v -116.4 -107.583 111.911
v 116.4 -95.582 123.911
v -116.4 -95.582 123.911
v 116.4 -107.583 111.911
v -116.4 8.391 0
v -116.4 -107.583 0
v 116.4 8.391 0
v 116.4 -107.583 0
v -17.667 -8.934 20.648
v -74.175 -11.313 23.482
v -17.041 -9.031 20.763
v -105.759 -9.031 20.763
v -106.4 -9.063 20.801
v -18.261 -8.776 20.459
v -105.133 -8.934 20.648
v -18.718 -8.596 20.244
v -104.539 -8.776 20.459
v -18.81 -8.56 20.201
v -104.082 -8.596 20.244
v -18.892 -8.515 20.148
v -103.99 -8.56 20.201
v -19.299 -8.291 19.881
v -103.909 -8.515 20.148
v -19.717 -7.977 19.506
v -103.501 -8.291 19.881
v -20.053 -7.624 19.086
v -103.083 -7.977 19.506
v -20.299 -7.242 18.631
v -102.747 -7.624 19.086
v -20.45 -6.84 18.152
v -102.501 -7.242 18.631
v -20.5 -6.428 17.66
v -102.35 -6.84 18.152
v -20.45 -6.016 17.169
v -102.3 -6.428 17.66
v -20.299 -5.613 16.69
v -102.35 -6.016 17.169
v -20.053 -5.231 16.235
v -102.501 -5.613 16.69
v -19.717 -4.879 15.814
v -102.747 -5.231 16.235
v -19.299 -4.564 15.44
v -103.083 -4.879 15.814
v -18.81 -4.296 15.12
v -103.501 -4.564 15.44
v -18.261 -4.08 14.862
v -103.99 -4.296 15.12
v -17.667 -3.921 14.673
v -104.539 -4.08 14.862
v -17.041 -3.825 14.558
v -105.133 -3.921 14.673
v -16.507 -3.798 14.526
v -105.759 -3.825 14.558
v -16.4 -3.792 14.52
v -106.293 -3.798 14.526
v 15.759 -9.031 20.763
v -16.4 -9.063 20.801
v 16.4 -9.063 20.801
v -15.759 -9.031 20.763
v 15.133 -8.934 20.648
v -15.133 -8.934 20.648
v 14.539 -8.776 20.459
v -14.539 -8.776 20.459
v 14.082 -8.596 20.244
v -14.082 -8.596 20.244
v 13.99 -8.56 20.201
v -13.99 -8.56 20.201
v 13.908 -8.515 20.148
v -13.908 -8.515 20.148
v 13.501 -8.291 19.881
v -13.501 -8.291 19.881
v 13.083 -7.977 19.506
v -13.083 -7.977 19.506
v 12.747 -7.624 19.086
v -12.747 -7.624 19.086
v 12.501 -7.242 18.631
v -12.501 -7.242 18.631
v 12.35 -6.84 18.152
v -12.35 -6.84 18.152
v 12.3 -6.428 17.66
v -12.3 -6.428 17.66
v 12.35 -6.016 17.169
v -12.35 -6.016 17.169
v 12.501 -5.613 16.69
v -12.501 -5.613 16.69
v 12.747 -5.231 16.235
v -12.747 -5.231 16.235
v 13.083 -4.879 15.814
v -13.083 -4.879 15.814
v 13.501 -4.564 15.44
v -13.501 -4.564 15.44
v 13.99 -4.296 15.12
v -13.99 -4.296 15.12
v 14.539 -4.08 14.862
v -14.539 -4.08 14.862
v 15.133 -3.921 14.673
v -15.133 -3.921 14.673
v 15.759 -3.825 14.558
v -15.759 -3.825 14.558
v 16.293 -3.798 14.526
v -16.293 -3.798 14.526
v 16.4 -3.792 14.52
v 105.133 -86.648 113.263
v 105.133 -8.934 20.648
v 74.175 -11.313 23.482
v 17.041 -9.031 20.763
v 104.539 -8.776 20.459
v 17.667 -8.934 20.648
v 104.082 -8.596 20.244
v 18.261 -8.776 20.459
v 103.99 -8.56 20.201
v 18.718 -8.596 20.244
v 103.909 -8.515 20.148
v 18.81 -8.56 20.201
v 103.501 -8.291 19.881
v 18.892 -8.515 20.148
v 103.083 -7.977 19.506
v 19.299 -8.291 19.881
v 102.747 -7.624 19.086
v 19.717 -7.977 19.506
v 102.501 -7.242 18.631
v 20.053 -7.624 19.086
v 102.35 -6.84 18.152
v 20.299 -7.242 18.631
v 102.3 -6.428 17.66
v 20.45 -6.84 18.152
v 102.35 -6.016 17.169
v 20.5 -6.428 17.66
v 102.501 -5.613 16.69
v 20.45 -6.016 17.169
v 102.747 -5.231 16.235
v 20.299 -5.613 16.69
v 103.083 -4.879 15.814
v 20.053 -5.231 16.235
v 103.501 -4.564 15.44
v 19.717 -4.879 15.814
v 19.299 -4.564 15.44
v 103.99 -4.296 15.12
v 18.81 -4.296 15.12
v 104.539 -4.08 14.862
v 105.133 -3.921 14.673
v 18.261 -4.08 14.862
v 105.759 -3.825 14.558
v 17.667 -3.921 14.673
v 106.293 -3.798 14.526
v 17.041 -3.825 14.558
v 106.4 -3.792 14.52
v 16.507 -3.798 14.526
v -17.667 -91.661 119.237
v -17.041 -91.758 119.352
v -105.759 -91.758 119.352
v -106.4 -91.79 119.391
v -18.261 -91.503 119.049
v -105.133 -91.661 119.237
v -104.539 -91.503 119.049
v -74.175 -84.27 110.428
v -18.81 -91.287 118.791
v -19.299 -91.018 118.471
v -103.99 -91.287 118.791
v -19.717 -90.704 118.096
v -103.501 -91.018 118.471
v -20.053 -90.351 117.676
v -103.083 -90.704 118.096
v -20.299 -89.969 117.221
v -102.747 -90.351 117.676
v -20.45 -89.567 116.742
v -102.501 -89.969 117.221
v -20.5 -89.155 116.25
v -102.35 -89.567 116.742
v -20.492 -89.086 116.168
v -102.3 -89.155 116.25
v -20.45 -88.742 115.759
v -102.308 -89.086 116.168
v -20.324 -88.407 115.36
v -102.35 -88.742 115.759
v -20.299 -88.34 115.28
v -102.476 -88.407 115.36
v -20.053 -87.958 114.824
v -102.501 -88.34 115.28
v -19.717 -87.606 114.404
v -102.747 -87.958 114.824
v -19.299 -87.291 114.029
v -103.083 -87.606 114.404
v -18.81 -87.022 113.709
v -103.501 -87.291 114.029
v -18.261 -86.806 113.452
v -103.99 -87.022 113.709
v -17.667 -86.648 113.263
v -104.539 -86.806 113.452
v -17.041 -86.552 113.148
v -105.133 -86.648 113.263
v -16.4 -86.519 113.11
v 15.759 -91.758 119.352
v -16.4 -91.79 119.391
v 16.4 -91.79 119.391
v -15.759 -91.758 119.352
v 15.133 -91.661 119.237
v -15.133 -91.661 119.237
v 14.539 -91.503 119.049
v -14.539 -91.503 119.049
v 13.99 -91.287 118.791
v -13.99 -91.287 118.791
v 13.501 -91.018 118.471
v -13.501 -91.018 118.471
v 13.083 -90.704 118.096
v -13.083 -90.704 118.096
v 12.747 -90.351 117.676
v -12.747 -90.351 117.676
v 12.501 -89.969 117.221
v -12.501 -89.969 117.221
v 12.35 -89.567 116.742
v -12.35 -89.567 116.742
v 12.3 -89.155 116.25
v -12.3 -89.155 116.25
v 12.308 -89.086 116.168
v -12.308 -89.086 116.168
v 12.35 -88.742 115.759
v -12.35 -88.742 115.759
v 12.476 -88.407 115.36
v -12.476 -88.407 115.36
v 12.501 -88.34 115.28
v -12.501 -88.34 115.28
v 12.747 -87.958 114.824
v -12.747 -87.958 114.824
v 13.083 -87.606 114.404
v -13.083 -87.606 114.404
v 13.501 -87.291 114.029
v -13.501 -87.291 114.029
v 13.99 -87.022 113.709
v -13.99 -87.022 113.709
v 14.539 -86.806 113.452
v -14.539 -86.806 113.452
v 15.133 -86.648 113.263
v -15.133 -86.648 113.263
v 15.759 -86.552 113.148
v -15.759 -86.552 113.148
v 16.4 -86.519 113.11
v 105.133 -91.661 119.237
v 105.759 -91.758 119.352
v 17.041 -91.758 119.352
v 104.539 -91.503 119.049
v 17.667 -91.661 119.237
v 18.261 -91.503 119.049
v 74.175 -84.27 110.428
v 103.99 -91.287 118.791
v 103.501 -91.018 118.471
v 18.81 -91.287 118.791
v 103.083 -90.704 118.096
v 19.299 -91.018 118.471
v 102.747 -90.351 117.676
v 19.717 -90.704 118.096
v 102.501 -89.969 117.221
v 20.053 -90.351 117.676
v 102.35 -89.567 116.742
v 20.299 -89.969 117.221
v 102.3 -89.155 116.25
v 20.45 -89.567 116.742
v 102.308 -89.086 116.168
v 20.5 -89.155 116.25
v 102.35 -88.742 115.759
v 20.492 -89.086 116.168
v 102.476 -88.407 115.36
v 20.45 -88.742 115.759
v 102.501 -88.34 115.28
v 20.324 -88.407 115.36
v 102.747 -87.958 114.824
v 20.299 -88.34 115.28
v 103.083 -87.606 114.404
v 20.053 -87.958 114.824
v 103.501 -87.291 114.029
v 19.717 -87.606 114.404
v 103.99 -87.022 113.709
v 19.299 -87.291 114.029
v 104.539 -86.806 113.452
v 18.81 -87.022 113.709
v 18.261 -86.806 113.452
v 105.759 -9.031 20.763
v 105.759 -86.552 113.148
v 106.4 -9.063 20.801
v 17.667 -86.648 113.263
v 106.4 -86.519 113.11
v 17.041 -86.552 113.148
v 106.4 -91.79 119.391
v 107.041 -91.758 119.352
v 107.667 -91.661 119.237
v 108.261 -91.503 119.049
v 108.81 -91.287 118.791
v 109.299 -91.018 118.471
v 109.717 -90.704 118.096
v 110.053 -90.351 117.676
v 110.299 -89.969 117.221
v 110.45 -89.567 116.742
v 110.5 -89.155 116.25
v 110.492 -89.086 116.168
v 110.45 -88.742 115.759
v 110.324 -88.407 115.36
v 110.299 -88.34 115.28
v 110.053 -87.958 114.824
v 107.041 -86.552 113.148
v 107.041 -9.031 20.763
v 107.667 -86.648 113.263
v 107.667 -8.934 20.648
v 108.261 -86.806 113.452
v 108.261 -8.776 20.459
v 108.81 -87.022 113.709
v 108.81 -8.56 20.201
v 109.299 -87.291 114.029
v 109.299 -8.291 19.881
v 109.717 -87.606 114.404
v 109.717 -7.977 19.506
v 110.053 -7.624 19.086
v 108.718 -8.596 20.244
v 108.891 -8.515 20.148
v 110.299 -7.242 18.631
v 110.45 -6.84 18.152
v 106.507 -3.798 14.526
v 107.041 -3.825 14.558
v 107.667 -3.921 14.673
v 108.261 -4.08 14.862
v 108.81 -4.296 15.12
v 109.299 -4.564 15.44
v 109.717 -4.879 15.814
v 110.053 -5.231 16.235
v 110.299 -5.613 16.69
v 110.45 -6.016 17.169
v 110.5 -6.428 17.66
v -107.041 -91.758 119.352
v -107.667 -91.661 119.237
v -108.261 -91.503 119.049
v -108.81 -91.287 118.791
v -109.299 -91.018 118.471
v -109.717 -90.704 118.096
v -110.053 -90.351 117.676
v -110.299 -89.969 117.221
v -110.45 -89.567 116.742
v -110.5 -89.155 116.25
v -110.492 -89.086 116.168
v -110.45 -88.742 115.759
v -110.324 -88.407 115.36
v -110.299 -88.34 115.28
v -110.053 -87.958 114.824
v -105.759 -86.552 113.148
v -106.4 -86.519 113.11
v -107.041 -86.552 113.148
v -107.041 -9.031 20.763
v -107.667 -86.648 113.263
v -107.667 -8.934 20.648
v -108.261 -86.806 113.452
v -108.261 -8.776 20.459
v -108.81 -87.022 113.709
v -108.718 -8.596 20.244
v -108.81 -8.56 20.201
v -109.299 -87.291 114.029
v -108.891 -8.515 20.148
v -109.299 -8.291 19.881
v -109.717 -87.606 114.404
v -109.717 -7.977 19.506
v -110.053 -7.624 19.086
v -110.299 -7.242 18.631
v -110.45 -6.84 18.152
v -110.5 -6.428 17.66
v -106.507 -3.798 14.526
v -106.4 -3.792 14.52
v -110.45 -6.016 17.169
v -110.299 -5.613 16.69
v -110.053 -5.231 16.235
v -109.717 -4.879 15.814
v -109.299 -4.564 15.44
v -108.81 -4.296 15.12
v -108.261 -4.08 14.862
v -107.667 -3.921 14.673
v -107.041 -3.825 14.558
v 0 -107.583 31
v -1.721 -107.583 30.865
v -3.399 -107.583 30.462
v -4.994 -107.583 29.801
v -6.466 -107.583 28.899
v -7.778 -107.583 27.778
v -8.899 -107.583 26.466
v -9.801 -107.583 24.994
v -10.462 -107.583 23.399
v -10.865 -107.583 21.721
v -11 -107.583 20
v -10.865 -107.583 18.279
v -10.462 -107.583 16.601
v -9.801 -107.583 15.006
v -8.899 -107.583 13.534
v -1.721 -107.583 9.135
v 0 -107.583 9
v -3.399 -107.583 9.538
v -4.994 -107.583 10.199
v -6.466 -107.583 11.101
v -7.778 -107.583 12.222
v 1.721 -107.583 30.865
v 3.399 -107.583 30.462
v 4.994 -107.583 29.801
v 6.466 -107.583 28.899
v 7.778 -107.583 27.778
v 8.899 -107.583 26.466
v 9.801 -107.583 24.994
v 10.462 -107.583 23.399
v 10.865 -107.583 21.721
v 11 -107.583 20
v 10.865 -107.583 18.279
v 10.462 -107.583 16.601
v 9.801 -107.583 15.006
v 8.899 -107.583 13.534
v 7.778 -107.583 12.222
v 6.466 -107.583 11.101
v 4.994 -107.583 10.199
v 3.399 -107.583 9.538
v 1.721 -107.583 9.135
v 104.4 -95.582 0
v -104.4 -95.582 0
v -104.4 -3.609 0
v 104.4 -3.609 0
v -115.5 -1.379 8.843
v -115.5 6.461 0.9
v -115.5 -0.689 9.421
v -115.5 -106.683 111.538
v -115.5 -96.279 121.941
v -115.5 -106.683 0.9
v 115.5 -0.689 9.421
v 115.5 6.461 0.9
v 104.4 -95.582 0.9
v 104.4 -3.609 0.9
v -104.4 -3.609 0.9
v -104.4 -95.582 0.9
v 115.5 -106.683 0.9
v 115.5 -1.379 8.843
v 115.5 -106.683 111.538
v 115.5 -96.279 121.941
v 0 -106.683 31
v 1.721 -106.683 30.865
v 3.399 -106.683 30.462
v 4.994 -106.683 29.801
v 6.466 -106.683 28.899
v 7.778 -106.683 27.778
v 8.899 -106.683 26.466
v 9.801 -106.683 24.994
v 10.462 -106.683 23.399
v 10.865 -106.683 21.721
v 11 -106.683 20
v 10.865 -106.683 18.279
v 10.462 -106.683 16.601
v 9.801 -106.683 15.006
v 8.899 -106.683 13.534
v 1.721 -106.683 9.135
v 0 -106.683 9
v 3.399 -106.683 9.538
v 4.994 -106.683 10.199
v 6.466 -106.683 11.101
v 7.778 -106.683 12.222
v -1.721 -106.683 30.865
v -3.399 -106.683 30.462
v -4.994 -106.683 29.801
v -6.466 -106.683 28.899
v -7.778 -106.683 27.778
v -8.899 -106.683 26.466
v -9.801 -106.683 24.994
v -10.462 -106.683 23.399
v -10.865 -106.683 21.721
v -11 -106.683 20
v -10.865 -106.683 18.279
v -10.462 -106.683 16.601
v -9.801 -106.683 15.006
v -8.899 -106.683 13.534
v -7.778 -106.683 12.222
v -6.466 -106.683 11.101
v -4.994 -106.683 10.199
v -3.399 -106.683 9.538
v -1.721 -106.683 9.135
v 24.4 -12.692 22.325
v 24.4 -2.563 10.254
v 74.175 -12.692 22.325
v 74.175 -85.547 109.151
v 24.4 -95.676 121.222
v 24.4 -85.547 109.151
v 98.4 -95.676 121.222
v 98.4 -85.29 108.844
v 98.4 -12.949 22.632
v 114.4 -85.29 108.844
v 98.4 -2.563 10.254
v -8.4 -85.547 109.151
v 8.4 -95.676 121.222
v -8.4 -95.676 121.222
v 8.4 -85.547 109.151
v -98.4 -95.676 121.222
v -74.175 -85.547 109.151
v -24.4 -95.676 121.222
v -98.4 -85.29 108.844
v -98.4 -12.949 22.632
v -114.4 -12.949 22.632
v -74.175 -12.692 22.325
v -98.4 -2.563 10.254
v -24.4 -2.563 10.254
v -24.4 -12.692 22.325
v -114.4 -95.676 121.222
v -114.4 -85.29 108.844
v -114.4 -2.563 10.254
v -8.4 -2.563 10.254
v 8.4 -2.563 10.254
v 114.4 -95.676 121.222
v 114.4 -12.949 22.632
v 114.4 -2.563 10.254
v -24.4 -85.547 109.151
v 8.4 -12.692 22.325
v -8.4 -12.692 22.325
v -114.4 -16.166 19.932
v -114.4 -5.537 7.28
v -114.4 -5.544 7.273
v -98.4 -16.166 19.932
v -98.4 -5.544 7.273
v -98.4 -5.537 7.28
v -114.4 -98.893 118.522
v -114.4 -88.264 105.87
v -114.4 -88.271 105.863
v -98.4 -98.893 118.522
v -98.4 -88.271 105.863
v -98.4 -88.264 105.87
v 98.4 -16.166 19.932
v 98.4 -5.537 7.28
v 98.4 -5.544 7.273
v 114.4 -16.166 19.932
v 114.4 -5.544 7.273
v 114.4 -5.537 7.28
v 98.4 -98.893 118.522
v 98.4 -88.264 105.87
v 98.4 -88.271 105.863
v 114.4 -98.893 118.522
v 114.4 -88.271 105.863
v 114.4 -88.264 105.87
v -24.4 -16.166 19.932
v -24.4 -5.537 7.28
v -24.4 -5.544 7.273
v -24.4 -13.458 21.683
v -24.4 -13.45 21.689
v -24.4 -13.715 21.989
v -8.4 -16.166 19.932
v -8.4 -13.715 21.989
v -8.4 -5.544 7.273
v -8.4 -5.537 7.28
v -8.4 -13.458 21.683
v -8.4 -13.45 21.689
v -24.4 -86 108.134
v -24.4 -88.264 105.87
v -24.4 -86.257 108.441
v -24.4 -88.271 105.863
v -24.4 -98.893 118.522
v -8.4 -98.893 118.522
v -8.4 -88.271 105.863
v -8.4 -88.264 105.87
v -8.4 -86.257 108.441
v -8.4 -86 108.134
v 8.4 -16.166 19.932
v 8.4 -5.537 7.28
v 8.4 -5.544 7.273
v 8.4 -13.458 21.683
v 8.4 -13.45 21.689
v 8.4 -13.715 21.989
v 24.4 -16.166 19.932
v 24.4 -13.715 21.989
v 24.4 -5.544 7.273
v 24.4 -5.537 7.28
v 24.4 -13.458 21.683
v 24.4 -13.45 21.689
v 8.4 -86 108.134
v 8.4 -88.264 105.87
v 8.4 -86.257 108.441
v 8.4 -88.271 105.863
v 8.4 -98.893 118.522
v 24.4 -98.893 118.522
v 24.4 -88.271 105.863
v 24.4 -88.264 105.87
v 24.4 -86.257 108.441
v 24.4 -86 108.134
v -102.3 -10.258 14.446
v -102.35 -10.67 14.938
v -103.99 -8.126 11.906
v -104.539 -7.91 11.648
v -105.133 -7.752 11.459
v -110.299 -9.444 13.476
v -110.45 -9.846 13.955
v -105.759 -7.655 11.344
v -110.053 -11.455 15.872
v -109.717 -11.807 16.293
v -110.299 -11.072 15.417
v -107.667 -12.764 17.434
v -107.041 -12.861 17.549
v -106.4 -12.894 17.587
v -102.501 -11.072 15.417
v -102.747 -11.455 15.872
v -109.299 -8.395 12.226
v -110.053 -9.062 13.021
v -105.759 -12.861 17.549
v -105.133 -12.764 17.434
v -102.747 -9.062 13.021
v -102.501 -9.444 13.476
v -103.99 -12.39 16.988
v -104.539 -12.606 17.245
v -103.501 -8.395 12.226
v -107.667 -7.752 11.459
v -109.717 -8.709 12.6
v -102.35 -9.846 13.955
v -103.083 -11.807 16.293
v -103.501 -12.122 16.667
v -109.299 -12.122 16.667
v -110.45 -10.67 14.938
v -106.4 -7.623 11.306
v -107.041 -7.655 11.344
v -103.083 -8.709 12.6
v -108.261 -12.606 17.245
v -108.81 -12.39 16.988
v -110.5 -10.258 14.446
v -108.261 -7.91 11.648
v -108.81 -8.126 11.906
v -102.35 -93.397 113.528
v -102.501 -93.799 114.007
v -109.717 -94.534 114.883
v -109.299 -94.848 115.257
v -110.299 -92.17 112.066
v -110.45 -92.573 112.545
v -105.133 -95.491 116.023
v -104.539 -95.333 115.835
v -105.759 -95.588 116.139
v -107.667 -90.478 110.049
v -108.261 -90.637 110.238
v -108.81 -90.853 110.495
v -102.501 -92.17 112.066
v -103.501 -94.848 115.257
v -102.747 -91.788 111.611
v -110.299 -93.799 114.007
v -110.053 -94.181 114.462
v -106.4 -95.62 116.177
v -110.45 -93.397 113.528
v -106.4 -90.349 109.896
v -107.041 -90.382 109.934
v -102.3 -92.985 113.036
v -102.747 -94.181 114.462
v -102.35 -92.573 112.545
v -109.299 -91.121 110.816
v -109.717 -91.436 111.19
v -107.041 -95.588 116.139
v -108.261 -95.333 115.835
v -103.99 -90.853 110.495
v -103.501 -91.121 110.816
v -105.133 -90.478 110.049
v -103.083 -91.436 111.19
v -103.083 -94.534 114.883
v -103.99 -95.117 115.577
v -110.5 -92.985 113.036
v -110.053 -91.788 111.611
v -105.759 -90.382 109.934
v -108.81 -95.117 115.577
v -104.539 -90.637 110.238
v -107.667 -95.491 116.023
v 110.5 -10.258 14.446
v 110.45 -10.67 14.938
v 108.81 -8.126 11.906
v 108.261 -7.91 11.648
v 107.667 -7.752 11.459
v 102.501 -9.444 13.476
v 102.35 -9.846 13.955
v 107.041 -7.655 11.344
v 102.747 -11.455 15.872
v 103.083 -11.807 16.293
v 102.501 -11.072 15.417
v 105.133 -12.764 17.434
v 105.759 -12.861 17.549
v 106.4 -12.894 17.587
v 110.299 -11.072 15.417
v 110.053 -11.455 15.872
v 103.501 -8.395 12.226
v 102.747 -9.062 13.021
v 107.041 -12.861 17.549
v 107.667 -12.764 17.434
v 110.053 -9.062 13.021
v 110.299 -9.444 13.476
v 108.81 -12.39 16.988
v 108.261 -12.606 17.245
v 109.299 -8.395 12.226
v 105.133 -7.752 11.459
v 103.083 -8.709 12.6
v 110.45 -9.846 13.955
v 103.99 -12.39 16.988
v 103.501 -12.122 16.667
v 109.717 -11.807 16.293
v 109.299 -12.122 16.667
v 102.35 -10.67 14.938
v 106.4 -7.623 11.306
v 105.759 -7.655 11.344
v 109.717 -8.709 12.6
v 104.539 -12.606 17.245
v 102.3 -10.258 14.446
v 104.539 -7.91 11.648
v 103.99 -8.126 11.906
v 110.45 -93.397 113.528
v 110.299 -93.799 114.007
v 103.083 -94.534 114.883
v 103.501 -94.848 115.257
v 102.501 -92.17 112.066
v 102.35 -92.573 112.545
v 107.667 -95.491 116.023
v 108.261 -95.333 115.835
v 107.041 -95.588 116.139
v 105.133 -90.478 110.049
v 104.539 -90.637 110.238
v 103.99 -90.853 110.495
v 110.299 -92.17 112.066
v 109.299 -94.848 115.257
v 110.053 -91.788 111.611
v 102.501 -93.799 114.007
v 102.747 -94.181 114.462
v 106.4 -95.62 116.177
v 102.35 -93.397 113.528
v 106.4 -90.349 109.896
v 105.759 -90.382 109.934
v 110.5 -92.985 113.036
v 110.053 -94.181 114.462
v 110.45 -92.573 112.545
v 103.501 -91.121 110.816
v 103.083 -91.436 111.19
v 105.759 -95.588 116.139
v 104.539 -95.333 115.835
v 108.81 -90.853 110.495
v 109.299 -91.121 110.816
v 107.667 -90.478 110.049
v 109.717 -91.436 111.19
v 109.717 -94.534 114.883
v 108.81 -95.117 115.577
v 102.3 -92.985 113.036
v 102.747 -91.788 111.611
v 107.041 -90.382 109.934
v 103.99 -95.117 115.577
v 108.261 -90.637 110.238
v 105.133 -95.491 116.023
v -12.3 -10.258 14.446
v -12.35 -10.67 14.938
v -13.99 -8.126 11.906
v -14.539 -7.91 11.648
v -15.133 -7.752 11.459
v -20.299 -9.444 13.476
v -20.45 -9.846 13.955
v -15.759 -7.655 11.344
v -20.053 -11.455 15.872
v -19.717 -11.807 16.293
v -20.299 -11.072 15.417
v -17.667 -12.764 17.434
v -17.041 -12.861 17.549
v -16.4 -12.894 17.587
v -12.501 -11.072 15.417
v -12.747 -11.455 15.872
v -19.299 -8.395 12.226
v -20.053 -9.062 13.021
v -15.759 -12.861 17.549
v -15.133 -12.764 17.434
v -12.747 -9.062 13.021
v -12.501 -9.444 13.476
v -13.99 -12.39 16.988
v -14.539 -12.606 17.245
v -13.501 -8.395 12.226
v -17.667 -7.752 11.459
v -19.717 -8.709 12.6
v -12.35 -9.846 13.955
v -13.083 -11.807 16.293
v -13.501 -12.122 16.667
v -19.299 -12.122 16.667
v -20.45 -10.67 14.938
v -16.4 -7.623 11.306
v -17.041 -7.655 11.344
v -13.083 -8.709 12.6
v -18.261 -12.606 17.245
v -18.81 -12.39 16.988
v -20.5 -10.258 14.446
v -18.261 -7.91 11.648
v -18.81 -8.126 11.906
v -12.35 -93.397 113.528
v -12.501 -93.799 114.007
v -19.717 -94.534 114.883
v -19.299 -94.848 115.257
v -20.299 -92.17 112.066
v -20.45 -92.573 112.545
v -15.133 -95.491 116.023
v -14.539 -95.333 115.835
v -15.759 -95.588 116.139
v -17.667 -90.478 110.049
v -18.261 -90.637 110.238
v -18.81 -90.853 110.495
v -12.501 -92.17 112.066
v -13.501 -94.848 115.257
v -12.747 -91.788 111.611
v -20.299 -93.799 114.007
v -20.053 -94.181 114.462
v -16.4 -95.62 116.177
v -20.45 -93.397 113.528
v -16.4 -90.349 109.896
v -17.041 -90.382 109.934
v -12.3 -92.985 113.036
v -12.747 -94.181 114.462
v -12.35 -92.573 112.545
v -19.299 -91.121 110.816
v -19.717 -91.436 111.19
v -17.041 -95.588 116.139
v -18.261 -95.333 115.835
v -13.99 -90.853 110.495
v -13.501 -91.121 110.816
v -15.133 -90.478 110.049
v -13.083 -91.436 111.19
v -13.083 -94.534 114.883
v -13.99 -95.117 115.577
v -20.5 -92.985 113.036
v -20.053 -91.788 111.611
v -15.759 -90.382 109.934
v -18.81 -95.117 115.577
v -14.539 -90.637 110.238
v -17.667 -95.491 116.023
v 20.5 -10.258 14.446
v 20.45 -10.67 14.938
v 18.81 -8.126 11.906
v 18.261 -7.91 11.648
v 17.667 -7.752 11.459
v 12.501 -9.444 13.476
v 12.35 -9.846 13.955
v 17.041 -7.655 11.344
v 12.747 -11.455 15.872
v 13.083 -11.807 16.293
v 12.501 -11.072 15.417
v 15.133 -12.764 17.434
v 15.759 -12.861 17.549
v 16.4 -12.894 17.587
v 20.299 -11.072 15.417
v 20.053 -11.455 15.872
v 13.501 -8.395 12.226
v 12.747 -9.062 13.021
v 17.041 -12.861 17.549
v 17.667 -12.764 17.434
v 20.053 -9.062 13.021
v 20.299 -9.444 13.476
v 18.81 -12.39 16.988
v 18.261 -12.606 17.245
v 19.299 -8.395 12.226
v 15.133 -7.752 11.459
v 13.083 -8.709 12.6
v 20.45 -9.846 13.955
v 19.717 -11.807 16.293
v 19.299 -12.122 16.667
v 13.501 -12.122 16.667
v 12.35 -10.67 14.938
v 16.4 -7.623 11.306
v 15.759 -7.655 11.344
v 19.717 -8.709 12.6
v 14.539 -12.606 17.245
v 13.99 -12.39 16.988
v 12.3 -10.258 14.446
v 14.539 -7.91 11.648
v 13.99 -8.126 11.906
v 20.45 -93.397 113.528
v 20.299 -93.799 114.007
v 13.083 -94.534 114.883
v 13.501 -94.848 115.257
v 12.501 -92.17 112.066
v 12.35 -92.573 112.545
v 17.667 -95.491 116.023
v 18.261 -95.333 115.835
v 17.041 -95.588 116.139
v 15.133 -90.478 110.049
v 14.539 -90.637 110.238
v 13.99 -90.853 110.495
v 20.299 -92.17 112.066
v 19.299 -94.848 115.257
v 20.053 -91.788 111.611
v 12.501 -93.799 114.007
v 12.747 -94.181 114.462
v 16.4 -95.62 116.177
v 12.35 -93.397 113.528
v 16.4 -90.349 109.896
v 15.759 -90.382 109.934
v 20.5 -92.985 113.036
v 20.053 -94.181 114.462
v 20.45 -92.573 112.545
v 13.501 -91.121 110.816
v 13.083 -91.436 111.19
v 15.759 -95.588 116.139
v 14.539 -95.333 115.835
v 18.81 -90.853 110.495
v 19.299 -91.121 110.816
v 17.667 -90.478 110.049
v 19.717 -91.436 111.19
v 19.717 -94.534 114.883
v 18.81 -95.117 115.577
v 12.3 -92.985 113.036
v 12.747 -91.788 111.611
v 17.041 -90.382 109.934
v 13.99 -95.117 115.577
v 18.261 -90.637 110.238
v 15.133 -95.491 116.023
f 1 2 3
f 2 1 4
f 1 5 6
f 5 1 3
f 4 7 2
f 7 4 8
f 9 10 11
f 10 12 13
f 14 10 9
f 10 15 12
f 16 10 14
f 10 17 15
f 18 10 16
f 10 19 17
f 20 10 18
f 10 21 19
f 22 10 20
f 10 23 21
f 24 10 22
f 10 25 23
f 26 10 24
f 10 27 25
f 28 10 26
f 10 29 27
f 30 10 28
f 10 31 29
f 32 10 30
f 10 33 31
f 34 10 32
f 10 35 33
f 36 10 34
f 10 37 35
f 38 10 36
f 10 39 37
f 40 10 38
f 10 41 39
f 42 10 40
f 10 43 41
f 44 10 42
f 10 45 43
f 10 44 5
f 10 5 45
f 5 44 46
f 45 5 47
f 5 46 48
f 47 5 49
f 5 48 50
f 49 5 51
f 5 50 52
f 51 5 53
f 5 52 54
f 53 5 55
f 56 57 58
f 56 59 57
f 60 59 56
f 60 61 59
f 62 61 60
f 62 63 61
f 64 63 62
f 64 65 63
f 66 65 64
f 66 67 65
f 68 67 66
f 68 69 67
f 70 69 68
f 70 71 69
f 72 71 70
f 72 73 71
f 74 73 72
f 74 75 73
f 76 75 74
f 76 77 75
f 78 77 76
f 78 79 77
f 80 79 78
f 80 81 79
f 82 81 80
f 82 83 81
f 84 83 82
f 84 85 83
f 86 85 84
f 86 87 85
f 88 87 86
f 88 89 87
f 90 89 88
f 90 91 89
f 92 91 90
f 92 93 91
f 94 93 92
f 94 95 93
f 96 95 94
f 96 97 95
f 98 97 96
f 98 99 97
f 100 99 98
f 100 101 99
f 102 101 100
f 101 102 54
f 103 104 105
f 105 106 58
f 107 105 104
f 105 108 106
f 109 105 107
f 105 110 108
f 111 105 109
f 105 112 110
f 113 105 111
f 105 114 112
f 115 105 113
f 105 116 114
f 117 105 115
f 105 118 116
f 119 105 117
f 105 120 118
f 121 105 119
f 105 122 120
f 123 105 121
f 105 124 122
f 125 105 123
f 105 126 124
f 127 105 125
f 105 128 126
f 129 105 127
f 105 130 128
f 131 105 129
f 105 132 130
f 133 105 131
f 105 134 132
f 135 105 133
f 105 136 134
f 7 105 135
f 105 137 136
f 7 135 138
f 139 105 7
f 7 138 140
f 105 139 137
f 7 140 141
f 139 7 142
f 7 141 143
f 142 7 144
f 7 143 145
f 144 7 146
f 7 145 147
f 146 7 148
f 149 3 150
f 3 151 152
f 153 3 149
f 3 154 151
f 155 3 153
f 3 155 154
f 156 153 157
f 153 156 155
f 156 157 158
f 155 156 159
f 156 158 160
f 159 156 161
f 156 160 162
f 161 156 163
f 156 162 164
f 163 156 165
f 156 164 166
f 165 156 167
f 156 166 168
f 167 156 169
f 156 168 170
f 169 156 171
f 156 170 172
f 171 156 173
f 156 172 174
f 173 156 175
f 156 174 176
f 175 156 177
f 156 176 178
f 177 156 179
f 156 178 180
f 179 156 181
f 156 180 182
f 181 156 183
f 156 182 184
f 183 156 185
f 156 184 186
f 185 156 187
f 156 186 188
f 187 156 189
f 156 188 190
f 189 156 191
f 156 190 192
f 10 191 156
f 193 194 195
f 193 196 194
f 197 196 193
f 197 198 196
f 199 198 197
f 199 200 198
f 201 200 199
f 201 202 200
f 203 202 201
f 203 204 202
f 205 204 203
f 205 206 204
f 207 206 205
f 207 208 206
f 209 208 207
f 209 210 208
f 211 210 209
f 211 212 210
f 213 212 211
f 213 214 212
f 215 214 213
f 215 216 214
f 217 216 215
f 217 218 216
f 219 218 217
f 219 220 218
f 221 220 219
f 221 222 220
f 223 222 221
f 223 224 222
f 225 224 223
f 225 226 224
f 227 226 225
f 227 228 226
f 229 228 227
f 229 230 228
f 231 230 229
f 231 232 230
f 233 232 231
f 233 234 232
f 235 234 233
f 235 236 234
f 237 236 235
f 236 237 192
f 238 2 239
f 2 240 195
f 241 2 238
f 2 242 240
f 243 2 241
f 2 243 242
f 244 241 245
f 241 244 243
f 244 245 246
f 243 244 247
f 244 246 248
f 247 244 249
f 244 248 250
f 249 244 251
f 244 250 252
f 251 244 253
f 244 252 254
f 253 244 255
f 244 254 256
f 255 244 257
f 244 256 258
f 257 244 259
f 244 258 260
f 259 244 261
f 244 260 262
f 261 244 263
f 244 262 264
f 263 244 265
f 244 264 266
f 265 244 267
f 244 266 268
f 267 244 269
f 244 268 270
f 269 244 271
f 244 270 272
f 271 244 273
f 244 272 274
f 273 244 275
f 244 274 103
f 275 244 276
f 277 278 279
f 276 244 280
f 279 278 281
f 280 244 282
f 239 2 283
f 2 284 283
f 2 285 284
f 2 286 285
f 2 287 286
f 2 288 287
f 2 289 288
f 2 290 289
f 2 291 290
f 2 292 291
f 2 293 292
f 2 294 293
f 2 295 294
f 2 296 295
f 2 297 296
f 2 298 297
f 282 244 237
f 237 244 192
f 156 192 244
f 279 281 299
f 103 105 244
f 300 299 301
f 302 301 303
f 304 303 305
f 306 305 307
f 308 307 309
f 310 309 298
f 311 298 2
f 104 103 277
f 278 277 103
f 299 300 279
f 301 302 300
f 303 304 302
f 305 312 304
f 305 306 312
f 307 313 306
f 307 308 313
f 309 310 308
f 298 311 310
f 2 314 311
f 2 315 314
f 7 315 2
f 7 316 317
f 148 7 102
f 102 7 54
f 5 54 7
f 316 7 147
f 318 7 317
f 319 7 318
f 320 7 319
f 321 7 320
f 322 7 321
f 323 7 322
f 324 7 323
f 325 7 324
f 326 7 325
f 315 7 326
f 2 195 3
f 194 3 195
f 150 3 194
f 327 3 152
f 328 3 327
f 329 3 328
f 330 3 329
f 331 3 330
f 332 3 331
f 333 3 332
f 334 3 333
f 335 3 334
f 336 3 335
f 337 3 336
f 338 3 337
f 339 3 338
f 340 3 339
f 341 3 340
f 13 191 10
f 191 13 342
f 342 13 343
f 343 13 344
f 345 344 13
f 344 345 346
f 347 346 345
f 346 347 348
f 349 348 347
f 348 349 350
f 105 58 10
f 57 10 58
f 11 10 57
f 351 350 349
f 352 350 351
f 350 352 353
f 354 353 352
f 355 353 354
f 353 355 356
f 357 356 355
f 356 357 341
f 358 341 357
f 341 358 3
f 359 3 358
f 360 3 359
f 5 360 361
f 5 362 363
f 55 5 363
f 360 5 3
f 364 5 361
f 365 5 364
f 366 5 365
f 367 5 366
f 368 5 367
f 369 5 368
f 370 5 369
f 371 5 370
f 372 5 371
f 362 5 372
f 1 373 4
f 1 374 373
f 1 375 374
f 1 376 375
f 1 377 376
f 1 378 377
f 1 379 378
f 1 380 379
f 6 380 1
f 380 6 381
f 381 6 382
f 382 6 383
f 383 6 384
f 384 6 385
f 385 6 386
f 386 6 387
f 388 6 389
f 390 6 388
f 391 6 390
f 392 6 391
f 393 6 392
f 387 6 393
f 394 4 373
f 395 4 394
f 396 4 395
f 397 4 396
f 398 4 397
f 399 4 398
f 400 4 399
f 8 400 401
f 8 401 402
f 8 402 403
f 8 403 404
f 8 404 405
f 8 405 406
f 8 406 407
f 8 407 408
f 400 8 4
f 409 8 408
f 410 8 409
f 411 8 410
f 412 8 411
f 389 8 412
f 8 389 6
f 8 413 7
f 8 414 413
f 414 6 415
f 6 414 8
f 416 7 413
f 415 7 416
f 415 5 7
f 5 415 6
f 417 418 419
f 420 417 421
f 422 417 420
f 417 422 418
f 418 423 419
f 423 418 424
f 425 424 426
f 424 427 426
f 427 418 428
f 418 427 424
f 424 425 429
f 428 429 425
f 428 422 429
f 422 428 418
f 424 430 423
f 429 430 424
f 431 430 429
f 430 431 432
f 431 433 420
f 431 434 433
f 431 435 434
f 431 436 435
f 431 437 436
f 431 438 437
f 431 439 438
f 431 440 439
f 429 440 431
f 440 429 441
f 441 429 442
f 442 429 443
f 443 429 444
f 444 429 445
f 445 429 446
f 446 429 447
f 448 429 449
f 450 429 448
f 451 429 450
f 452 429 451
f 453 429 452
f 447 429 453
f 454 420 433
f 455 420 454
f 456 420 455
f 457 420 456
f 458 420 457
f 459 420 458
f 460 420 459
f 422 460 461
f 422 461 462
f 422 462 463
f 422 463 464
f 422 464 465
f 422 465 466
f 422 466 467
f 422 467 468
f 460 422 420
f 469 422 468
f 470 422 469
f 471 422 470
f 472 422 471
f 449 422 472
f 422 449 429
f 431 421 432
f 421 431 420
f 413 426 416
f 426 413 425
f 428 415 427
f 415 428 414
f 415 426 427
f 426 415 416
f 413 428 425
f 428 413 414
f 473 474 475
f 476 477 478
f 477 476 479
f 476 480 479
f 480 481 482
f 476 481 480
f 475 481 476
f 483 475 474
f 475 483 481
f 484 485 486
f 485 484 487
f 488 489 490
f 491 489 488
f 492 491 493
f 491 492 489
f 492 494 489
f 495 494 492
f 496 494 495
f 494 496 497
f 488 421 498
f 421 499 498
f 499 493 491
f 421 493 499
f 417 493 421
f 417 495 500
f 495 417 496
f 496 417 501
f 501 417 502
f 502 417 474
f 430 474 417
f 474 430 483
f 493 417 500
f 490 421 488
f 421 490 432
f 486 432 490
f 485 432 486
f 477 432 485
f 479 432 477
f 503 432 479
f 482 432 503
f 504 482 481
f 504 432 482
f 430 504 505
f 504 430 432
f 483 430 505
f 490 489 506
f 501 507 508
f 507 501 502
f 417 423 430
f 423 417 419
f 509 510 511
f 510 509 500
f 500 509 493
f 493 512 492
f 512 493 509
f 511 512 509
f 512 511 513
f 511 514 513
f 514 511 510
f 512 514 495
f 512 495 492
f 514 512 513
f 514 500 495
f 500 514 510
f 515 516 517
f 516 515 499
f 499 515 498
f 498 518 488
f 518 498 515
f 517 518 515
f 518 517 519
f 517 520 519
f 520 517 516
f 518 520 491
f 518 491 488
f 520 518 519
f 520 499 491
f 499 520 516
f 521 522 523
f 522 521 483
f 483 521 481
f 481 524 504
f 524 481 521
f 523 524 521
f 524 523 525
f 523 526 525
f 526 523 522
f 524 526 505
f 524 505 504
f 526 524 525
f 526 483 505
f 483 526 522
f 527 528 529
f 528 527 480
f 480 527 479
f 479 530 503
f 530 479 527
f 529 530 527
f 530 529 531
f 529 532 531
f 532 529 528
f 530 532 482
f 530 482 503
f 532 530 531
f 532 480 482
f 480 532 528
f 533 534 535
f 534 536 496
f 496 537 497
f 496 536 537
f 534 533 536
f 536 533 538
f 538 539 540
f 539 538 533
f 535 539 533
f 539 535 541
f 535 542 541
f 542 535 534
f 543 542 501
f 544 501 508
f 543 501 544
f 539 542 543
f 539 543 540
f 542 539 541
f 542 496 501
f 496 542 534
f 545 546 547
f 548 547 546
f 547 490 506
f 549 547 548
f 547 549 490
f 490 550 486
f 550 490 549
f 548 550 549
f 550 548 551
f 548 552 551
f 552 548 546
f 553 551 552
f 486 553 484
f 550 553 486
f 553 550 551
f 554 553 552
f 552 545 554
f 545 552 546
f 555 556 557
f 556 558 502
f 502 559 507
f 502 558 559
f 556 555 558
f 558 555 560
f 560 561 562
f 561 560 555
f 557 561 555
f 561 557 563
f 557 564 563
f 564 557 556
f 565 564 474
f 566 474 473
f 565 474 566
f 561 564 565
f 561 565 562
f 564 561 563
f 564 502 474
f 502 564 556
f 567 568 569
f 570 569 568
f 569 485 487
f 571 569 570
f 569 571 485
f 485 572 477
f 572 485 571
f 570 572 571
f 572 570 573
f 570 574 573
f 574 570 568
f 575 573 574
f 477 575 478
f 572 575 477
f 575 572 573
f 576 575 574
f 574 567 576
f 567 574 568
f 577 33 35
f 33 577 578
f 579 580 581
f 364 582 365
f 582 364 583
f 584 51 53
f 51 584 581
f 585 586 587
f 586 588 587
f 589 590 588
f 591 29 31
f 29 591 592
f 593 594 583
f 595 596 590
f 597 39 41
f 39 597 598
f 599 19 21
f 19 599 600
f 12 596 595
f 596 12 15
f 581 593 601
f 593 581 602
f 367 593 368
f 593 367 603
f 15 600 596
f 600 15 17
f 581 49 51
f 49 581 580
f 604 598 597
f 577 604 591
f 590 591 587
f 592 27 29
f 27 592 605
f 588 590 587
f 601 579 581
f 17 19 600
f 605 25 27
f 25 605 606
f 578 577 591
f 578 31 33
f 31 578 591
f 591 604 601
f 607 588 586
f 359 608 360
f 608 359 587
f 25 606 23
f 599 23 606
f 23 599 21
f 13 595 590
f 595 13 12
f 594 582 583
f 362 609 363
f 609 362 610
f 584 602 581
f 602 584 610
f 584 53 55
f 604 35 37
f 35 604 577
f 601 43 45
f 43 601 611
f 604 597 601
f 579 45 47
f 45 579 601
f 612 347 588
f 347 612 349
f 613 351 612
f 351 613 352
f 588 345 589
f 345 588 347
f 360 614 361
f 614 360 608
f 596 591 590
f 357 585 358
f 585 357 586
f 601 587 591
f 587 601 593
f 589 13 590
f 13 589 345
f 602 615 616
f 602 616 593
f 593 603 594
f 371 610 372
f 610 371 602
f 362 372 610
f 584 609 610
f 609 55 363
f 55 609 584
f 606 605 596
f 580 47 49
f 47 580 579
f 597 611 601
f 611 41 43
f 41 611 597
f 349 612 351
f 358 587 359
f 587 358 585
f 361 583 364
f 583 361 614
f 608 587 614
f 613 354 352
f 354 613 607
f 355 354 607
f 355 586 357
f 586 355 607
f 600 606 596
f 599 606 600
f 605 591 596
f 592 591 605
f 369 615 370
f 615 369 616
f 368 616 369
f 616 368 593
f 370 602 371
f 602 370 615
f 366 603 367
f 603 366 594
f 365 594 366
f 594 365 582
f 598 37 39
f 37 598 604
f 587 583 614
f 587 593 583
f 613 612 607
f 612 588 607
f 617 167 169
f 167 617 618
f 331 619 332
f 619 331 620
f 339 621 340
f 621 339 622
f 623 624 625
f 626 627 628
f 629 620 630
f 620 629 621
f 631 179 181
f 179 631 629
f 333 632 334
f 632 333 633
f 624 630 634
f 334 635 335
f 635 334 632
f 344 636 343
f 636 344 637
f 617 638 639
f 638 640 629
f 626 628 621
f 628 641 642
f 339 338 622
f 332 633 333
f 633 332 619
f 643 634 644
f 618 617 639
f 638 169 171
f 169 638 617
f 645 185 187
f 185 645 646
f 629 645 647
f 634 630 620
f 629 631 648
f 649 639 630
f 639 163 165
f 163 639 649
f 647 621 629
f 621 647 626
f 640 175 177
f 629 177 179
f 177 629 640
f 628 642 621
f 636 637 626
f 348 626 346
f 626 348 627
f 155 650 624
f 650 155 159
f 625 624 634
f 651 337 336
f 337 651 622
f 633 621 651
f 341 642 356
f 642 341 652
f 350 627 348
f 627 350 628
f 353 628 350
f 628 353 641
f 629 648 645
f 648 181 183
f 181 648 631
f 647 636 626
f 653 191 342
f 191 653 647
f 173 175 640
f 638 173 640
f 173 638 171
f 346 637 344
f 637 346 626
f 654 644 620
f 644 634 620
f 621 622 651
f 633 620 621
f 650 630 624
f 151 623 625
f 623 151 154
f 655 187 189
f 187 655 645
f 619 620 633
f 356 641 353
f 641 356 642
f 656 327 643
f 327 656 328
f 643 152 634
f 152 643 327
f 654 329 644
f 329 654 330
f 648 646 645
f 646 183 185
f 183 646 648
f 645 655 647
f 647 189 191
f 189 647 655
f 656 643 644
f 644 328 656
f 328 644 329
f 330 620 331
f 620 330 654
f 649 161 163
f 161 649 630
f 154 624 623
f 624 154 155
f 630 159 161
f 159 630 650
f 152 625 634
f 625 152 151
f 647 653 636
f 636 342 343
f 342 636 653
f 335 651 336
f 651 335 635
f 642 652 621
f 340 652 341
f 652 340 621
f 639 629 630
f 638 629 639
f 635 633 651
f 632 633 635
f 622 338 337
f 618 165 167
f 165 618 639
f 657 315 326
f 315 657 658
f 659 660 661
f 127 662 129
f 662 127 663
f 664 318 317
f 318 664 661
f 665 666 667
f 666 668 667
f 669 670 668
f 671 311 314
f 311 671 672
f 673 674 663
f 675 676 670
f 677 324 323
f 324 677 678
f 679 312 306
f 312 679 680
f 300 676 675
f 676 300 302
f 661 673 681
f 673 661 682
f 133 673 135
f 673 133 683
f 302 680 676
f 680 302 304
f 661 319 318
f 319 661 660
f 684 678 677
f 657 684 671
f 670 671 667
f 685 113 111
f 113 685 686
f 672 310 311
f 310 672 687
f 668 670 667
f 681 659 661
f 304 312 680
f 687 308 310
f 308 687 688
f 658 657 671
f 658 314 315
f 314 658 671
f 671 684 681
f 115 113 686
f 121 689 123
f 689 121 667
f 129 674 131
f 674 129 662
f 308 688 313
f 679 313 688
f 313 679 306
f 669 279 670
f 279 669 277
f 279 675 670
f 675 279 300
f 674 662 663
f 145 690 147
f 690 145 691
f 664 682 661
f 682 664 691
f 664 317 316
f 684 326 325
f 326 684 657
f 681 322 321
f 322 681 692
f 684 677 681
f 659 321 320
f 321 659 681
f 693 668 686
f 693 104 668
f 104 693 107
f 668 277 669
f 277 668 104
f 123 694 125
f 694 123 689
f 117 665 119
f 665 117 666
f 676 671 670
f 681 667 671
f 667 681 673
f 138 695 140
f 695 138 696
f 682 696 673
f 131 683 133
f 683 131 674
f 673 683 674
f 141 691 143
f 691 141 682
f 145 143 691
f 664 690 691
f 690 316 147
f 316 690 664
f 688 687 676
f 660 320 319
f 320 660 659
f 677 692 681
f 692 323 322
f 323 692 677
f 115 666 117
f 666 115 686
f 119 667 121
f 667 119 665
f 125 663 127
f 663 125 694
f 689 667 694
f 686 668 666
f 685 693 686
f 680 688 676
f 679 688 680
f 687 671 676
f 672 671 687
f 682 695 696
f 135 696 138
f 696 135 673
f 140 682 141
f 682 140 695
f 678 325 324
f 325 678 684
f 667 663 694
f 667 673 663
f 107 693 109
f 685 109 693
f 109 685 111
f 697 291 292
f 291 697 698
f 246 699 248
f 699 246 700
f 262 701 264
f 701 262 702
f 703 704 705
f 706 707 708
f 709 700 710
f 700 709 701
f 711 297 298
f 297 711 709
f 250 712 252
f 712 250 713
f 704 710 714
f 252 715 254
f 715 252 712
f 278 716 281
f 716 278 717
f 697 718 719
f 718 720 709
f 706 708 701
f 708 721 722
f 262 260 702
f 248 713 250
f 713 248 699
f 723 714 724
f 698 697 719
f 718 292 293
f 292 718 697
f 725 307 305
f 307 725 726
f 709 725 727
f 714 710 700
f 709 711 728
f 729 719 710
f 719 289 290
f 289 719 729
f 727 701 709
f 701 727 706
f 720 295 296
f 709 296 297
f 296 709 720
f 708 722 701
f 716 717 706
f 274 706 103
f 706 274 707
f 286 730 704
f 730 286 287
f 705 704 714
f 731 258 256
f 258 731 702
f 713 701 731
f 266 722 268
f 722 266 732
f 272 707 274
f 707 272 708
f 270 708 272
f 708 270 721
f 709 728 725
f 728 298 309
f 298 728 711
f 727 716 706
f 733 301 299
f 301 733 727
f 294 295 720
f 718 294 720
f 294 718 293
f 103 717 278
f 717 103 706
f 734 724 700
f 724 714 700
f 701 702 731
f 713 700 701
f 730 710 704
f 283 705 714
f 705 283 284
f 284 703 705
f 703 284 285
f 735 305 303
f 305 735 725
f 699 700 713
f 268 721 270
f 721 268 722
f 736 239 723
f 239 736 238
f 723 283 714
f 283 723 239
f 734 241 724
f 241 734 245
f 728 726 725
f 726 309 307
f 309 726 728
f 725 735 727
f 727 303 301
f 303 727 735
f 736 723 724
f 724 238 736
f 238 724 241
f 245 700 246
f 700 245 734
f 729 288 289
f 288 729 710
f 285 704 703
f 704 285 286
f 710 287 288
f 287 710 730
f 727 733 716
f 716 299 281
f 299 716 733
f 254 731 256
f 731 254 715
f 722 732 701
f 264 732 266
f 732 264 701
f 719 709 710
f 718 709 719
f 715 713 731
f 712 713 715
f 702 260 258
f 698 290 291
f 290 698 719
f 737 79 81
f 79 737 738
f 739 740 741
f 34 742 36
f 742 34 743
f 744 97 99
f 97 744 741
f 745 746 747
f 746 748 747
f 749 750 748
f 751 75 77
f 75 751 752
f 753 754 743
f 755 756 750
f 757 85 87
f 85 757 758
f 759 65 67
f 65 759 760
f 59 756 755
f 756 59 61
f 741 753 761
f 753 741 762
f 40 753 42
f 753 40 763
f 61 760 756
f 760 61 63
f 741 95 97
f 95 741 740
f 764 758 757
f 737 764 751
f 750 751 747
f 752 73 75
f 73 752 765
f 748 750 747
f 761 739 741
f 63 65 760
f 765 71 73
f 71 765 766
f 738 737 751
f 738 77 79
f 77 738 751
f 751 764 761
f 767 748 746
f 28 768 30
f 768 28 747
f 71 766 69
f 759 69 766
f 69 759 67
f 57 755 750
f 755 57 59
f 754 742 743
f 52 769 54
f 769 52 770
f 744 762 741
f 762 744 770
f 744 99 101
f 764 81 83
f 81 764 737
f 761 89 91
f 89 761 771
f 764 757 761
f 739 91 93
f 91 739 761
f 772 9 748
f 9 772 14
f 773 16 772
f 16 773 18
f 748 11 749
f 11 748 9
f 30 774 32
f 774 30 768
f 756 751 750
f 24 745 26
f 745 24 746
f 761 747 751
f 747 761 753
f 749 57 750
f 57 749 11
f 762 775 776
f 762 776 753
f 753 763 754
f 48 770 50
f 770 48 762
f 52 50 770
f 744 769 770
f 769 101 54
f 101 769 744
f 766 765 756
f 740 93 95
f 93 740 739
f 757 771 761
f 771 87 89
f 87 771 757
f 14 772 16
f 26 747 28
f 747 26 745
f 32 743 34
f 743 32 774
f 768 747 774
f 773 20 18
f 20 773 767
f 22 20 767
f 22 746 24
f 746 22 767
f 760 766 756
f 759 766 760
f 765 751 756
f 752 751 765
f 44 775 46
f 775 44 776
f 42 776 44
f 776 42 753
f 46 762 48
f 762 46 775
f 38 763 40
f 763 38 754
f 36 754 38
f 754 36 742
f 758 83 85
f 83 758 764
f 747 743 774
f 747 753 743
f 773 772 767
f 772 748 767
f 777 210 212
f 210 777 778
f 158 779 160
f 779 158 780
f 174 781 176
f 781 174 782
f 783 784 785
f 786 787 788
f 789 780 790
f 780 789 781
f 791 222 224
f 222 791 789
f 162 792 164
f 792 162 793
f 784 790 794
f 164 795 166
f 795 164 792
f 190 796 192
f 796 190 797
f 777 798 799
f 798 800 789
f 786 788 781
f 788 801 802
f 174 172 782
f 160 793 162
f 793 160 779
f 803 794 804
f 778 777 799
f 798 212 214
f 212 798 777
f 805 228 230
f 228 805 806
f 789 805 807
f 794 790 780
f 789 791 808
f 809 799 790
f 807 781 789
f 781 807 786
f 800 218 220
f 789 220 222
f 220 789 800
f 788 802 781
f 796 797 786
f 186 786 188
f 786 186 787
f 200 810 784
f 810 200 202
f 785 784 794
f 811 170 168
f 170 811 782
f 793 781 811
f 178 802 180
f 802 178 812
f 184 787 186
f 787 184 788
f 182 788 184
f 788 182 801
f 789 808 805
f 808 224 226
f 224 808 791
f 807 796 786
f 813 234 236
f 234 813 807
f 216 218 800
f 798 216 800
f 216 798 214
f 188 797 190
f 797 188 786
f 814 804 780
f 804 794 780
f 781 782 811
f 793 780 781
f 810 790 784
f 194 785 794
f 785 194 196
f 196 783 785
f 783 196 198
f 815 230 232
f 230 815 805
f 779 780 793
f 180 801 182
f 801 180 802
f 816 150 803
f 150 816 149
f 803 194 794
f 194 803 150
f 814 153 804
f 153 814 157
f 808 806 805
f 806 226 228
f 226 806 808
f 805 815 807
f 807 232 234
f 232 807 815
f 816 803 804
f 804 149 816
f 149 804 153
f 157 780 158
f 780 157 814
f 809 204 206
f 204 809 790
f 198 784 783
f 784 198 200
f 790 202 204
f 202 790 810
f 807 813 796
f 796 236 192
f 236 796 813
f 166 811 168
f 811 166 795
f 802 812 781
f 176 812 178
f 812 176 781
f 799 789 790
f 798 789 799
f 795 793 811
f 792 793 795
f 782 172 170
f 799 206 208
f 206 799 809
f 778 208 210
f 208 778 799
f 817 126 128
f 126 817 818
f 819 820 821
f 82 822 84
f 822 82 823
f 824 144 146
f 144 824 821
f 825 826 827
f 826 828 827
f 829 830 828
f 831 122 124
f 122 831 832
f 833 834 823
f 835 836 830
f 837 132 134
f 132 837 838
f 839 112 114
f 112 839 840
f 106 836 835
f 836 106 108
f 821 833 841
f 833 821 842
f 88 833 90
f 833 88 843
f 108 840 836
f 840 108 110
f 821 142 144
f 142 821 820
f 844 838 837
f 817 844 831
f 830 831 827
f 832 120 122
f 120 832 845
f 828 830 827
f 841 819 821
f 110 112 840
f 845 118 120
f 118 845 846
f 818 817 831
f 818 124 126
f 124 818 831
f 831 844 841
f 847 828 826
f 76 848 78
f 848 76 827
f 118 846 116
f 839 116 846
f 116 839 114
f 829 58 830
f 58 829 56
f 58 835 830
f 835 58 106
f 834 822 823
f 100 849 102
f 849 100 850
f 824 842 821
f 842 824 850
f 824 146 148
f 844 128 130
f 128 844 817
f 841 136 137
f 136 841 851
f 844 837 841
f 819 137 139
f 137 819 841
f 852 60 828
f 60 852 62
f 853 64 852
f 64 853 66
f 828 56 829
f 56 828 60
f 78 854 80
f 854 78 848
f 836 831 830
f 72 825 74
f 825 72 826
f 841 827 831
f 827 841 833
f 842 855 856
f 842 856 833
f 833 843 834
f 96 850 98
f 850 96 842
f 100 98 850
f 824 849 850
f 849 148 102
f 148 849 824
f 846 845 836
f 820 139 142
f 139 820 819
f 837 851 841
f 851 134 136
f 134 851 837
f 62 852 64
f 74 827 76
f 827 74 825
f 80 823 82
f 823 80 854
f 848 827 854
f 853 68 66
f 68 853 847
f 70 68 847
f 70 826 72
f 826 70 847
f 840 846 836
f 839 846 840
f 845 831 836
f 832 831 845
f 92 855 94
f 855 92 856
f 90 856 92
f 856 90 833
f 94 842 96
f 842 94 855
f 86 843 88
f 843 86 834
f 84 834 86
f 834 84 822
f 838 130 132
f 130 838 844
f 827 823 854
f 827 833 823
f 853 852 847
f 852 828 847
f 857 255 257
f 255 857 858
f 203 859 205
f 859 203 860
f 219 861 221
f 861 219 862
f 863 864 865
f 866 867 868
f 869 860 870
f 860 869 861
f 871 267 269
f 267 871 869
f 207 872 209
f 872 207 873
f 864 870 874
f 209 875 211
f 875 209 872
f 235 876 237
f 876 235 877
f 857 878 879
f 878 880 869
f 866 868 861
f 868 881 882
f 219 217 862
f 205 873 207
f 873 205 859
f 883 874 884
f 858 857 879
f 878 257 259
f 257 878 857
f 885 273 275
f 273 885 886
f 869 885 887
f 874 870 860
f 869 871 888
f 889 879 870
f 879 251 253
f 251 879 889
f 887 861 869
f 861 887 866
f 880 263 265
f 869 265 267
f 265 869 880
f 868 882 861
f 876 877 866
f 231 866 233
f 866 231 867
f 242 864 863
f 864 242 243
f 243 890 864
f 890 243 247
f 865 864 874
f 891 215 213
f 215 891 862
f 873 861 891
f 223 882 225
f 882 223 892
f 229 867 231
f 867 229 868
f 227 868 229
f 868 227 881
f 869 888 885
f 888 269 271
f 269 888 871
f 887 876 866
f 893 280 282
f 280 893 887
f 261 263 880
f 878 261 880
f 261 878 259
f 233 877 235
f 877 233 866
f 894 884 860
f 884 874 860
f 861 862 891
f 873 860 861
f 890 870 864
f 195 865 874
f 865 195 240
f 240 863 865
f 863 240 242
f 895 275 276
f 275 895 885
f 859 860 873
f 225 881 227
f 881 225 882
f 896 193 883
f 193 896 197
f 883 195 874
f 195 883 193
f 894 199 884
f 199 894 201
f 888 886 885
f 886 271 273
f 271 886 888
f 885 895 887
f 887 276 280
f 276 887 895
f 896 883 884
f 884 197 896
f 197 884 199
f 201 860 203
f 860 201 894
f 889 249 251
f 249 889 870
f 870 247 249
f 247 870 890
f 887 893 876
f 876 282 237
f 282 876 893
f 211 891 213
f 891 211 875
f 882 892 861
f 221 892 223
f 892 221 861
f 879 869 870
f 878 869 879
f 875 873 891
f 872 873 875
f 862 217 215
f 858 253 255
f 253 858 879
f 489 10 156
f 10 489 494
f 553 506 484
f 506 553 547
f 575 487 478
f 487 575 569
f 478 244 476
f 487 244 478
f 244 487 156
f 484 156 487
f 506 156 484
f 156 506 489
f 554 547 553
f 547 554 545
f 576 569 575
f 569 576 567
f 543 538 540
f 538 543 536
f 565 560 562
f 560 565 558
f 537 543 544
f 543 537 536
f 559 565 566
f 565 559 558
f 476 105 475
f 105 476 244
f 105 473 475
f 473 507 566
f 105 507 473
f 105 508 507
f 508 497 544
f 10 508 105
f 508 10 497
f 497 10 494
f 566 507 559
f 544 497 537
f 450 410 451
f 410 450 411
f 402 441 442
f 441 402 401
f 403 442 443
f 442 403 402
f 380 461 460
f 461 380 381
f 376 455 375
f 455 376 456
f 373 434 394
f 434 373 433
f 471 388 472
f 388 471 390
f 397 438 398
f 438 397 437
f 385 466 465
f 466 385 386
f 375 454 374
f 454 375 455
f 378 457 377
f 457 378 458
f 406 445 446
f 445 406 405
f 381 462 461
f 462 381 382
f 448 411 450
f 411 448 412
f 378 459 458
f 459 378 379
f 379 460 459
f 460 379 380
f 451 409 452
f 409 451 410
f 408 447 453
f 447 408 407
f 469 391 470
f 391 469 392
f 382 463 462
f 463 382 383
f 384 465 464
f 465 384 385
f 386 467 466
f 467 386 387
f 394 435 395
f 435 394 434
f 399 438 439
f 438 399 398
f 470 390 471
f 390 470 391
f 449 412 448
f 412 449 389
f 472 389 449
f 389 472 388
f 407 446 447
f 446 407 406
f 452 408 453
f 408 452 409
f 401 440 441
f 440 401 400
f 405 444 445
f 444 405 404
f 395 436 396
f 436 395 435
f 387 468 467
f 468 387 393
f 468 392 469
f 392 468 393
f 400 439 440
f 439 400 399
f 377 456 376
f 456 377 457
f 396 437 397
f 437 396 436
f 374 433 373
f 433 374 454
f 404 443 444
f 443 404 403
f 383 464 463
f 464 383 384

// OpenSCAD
// =====================================================================
//  Suporte FECHADO FINO (impressão rápida) para a tela Guition
//  JC8012P4A1C 10,1". Mesmo encaixe do suporte_tela10.scad, mas:
//    - paredes de 1,6 mm (4 linhas de bico 0,4);
//    - sem logo;
//    - sem a borda grossa: só uma pastilha em volta de cada encaixe;
//    - fundo vazado (só uma moldura apoiando na mesa).
//  A tela apoia na face e as colunas de latão entram nos encaixes:
//  fica presa pelo peso, sem parafuso.
//  Eixos: X = largura, Y = profundidade (+Y para a frente), Z para cima.
// =====================================================================

/* [Tela (desenho Guition)] */
tela_l      = 242.8;
tela_a      = 158.7;
furo_borda  = 15;
furo_meio   = 16.4;
caixa_l     = 138.35;
caixa_a     = 93.5;

/* [Suporte] */
angulo      = 50;       // inclinação da tela em relação à mesa (mínimo 45 para imprimir sem suporte)
recuo_face  = 5;
parede      = 0.9;      // laterais, traseira e fundo (2 linhas de bico 0,4)
esp_face    = 1.8;      // face onde a tela apoia (mais grossa)
altura_frente = 10;
fundo_atras = 12;
moldura_fundo = 12;     // largura da moldura do fundo (o meio é vazado)
encaixe_d   = 8.2;
encaixe_prof = 5;
pastilha    = 16;       // pastilha em volta de cada encaixe
margem_l    = 5;
margem_a    = 10;
encaixes_dos_dois_lados = true;
furo_tras_d = 22;
furo_tras_z = 20;

$fn = 40;
e = 0.01;

W  = tela_l - 2*recuo_face;
L  = tela_a - 2*recuo_face;
ca = cos(angulo); sa = sin(angulo);
v2s = function(v) v + L/2;
z_topo = altura_frente + L*sa;
y_topo = -L*ca;
y_tras = y_topo - fundo_atras;
z_tras = z_topo - fundo_atras;
bico_frente = altura_frente * ca / sa;
abre_u = caixa_l/2 + margem_l;
abre_v = caixa_a/2 + margem_a;
k45 = max(0, tan(angulo - 45));      // recuo por mm de profundidade p/ ficar a 45°

fu = tela_l/2 - furo_borda;
fv = tela_a/2 - furo_borda;
encaixes = concat(
    [for (su = [-1, 1], sv = [-1, 1]) [su*fu, sv*fv]],
    [for (sv = [-1, 1]) [-furo_meio, sv*fv]],
    encaixes_dos_dois_lados ? [for (sv = [-1, 1]) [furo_meio, sv*fv]] : []
);

echo(str("Suporte fino: ", W, " x ", round(bico_frente - y_tras), " x ", round(z_topo), " mm"));

module na_face() {
    multmatrix([[1, 0,   0,  0],
                [0, -ca, sa, 0],
                [0, sa,  ca, altura_frente],
                [0, 0,   0,  1]]) children();
}

module perfil() {
    polygon([[bico_frente, 0], [0, altura_frente], [y_topo, z_topo],
             [y_tras, z_tras], [y_tras, 0]]);
}

module casca() {
    difference() {
        translate([-W/2, 0, 0]) rotate([90, 0, 90]) linear_extrude(W) perfil();
        translate([-W/2 + parede, 0, 0]) rotate([90, 0, 90]) linear_extrude(W - 2*parede)
            offset(delta = -parede) perfil();
        // fundo vazado: fica só a moldura
        translate([-W/2 + moldura_fundo, y_tras + moldura_fundo, -1])
            cube([W - 2*moldura_fundo, bico_frente - y_tras - 2*moldura_fundo, parede + 2]);
    }
}

// pastilha atrás da face, com a borda de baixo a 45° (imprime sem suporte)
module pastilha_em(u, v) {
    s0 = v2s(v) - pastilha/2;  s1 = v2s(v) + pastilha/2;
    p = encaixe_prof + 1;
    intersection() {
        hull() {
            na_face() translate([u - pastilha/2, s0, -e]) cube([pastilha, s1 - s0, e]);
            na_face() translate([u - pastilha/2, s0 - p*k45, -p]) cube([pastilha, s1 - s0 + p*k45, e]);
        }
        translate([-W/2, 0, 0]) rotate([90, 0, 90]) linear_extrude(W) perfil();
    }
}

module suporte() {
    difference() {
        union() {
            casca();
            // face mais grossa que as outras paredes
            intersection() {
                translate([-W/2, 0, 0]) rotate([90, 0, 90]) linear_extrude(W) perfil();
                na_face() translate([-W/2, 0, -esp_face]) cube([W, L, esp_face]);
            }
            for (f = encaixes) pastilha_em(f[0], f[1]);
        }
        // abertura da caixa: borda de cima a 45°
        hull() {
            na_face() translate([-abre_u, v2s(-abre_v), 0]) cube([2*abre_u, 2*abre_v, 1]);
            na_face() translate([-abre_u, v2s(-abre_v), -esp_face - 1])
                cube([2*abre_u, 2*abre_v - (esp_face + 1) * k45, e]);
        }
        // encaixes das colunas de latão
        for (f = encaixes) na_face() translate([f[0], v2s(f[1]), -encaixe_prof]) cylinder(d = encaixe_d, h = encaixe_prof + 1);
        // furo do cabo atrás
        translate([0, y_tras + parede/2, furo_tras_z]) rotate([90, 0, 0]) cylinder(d = furo_tras_d, h = parede + 2, center = true);
    }
}

suporte();
